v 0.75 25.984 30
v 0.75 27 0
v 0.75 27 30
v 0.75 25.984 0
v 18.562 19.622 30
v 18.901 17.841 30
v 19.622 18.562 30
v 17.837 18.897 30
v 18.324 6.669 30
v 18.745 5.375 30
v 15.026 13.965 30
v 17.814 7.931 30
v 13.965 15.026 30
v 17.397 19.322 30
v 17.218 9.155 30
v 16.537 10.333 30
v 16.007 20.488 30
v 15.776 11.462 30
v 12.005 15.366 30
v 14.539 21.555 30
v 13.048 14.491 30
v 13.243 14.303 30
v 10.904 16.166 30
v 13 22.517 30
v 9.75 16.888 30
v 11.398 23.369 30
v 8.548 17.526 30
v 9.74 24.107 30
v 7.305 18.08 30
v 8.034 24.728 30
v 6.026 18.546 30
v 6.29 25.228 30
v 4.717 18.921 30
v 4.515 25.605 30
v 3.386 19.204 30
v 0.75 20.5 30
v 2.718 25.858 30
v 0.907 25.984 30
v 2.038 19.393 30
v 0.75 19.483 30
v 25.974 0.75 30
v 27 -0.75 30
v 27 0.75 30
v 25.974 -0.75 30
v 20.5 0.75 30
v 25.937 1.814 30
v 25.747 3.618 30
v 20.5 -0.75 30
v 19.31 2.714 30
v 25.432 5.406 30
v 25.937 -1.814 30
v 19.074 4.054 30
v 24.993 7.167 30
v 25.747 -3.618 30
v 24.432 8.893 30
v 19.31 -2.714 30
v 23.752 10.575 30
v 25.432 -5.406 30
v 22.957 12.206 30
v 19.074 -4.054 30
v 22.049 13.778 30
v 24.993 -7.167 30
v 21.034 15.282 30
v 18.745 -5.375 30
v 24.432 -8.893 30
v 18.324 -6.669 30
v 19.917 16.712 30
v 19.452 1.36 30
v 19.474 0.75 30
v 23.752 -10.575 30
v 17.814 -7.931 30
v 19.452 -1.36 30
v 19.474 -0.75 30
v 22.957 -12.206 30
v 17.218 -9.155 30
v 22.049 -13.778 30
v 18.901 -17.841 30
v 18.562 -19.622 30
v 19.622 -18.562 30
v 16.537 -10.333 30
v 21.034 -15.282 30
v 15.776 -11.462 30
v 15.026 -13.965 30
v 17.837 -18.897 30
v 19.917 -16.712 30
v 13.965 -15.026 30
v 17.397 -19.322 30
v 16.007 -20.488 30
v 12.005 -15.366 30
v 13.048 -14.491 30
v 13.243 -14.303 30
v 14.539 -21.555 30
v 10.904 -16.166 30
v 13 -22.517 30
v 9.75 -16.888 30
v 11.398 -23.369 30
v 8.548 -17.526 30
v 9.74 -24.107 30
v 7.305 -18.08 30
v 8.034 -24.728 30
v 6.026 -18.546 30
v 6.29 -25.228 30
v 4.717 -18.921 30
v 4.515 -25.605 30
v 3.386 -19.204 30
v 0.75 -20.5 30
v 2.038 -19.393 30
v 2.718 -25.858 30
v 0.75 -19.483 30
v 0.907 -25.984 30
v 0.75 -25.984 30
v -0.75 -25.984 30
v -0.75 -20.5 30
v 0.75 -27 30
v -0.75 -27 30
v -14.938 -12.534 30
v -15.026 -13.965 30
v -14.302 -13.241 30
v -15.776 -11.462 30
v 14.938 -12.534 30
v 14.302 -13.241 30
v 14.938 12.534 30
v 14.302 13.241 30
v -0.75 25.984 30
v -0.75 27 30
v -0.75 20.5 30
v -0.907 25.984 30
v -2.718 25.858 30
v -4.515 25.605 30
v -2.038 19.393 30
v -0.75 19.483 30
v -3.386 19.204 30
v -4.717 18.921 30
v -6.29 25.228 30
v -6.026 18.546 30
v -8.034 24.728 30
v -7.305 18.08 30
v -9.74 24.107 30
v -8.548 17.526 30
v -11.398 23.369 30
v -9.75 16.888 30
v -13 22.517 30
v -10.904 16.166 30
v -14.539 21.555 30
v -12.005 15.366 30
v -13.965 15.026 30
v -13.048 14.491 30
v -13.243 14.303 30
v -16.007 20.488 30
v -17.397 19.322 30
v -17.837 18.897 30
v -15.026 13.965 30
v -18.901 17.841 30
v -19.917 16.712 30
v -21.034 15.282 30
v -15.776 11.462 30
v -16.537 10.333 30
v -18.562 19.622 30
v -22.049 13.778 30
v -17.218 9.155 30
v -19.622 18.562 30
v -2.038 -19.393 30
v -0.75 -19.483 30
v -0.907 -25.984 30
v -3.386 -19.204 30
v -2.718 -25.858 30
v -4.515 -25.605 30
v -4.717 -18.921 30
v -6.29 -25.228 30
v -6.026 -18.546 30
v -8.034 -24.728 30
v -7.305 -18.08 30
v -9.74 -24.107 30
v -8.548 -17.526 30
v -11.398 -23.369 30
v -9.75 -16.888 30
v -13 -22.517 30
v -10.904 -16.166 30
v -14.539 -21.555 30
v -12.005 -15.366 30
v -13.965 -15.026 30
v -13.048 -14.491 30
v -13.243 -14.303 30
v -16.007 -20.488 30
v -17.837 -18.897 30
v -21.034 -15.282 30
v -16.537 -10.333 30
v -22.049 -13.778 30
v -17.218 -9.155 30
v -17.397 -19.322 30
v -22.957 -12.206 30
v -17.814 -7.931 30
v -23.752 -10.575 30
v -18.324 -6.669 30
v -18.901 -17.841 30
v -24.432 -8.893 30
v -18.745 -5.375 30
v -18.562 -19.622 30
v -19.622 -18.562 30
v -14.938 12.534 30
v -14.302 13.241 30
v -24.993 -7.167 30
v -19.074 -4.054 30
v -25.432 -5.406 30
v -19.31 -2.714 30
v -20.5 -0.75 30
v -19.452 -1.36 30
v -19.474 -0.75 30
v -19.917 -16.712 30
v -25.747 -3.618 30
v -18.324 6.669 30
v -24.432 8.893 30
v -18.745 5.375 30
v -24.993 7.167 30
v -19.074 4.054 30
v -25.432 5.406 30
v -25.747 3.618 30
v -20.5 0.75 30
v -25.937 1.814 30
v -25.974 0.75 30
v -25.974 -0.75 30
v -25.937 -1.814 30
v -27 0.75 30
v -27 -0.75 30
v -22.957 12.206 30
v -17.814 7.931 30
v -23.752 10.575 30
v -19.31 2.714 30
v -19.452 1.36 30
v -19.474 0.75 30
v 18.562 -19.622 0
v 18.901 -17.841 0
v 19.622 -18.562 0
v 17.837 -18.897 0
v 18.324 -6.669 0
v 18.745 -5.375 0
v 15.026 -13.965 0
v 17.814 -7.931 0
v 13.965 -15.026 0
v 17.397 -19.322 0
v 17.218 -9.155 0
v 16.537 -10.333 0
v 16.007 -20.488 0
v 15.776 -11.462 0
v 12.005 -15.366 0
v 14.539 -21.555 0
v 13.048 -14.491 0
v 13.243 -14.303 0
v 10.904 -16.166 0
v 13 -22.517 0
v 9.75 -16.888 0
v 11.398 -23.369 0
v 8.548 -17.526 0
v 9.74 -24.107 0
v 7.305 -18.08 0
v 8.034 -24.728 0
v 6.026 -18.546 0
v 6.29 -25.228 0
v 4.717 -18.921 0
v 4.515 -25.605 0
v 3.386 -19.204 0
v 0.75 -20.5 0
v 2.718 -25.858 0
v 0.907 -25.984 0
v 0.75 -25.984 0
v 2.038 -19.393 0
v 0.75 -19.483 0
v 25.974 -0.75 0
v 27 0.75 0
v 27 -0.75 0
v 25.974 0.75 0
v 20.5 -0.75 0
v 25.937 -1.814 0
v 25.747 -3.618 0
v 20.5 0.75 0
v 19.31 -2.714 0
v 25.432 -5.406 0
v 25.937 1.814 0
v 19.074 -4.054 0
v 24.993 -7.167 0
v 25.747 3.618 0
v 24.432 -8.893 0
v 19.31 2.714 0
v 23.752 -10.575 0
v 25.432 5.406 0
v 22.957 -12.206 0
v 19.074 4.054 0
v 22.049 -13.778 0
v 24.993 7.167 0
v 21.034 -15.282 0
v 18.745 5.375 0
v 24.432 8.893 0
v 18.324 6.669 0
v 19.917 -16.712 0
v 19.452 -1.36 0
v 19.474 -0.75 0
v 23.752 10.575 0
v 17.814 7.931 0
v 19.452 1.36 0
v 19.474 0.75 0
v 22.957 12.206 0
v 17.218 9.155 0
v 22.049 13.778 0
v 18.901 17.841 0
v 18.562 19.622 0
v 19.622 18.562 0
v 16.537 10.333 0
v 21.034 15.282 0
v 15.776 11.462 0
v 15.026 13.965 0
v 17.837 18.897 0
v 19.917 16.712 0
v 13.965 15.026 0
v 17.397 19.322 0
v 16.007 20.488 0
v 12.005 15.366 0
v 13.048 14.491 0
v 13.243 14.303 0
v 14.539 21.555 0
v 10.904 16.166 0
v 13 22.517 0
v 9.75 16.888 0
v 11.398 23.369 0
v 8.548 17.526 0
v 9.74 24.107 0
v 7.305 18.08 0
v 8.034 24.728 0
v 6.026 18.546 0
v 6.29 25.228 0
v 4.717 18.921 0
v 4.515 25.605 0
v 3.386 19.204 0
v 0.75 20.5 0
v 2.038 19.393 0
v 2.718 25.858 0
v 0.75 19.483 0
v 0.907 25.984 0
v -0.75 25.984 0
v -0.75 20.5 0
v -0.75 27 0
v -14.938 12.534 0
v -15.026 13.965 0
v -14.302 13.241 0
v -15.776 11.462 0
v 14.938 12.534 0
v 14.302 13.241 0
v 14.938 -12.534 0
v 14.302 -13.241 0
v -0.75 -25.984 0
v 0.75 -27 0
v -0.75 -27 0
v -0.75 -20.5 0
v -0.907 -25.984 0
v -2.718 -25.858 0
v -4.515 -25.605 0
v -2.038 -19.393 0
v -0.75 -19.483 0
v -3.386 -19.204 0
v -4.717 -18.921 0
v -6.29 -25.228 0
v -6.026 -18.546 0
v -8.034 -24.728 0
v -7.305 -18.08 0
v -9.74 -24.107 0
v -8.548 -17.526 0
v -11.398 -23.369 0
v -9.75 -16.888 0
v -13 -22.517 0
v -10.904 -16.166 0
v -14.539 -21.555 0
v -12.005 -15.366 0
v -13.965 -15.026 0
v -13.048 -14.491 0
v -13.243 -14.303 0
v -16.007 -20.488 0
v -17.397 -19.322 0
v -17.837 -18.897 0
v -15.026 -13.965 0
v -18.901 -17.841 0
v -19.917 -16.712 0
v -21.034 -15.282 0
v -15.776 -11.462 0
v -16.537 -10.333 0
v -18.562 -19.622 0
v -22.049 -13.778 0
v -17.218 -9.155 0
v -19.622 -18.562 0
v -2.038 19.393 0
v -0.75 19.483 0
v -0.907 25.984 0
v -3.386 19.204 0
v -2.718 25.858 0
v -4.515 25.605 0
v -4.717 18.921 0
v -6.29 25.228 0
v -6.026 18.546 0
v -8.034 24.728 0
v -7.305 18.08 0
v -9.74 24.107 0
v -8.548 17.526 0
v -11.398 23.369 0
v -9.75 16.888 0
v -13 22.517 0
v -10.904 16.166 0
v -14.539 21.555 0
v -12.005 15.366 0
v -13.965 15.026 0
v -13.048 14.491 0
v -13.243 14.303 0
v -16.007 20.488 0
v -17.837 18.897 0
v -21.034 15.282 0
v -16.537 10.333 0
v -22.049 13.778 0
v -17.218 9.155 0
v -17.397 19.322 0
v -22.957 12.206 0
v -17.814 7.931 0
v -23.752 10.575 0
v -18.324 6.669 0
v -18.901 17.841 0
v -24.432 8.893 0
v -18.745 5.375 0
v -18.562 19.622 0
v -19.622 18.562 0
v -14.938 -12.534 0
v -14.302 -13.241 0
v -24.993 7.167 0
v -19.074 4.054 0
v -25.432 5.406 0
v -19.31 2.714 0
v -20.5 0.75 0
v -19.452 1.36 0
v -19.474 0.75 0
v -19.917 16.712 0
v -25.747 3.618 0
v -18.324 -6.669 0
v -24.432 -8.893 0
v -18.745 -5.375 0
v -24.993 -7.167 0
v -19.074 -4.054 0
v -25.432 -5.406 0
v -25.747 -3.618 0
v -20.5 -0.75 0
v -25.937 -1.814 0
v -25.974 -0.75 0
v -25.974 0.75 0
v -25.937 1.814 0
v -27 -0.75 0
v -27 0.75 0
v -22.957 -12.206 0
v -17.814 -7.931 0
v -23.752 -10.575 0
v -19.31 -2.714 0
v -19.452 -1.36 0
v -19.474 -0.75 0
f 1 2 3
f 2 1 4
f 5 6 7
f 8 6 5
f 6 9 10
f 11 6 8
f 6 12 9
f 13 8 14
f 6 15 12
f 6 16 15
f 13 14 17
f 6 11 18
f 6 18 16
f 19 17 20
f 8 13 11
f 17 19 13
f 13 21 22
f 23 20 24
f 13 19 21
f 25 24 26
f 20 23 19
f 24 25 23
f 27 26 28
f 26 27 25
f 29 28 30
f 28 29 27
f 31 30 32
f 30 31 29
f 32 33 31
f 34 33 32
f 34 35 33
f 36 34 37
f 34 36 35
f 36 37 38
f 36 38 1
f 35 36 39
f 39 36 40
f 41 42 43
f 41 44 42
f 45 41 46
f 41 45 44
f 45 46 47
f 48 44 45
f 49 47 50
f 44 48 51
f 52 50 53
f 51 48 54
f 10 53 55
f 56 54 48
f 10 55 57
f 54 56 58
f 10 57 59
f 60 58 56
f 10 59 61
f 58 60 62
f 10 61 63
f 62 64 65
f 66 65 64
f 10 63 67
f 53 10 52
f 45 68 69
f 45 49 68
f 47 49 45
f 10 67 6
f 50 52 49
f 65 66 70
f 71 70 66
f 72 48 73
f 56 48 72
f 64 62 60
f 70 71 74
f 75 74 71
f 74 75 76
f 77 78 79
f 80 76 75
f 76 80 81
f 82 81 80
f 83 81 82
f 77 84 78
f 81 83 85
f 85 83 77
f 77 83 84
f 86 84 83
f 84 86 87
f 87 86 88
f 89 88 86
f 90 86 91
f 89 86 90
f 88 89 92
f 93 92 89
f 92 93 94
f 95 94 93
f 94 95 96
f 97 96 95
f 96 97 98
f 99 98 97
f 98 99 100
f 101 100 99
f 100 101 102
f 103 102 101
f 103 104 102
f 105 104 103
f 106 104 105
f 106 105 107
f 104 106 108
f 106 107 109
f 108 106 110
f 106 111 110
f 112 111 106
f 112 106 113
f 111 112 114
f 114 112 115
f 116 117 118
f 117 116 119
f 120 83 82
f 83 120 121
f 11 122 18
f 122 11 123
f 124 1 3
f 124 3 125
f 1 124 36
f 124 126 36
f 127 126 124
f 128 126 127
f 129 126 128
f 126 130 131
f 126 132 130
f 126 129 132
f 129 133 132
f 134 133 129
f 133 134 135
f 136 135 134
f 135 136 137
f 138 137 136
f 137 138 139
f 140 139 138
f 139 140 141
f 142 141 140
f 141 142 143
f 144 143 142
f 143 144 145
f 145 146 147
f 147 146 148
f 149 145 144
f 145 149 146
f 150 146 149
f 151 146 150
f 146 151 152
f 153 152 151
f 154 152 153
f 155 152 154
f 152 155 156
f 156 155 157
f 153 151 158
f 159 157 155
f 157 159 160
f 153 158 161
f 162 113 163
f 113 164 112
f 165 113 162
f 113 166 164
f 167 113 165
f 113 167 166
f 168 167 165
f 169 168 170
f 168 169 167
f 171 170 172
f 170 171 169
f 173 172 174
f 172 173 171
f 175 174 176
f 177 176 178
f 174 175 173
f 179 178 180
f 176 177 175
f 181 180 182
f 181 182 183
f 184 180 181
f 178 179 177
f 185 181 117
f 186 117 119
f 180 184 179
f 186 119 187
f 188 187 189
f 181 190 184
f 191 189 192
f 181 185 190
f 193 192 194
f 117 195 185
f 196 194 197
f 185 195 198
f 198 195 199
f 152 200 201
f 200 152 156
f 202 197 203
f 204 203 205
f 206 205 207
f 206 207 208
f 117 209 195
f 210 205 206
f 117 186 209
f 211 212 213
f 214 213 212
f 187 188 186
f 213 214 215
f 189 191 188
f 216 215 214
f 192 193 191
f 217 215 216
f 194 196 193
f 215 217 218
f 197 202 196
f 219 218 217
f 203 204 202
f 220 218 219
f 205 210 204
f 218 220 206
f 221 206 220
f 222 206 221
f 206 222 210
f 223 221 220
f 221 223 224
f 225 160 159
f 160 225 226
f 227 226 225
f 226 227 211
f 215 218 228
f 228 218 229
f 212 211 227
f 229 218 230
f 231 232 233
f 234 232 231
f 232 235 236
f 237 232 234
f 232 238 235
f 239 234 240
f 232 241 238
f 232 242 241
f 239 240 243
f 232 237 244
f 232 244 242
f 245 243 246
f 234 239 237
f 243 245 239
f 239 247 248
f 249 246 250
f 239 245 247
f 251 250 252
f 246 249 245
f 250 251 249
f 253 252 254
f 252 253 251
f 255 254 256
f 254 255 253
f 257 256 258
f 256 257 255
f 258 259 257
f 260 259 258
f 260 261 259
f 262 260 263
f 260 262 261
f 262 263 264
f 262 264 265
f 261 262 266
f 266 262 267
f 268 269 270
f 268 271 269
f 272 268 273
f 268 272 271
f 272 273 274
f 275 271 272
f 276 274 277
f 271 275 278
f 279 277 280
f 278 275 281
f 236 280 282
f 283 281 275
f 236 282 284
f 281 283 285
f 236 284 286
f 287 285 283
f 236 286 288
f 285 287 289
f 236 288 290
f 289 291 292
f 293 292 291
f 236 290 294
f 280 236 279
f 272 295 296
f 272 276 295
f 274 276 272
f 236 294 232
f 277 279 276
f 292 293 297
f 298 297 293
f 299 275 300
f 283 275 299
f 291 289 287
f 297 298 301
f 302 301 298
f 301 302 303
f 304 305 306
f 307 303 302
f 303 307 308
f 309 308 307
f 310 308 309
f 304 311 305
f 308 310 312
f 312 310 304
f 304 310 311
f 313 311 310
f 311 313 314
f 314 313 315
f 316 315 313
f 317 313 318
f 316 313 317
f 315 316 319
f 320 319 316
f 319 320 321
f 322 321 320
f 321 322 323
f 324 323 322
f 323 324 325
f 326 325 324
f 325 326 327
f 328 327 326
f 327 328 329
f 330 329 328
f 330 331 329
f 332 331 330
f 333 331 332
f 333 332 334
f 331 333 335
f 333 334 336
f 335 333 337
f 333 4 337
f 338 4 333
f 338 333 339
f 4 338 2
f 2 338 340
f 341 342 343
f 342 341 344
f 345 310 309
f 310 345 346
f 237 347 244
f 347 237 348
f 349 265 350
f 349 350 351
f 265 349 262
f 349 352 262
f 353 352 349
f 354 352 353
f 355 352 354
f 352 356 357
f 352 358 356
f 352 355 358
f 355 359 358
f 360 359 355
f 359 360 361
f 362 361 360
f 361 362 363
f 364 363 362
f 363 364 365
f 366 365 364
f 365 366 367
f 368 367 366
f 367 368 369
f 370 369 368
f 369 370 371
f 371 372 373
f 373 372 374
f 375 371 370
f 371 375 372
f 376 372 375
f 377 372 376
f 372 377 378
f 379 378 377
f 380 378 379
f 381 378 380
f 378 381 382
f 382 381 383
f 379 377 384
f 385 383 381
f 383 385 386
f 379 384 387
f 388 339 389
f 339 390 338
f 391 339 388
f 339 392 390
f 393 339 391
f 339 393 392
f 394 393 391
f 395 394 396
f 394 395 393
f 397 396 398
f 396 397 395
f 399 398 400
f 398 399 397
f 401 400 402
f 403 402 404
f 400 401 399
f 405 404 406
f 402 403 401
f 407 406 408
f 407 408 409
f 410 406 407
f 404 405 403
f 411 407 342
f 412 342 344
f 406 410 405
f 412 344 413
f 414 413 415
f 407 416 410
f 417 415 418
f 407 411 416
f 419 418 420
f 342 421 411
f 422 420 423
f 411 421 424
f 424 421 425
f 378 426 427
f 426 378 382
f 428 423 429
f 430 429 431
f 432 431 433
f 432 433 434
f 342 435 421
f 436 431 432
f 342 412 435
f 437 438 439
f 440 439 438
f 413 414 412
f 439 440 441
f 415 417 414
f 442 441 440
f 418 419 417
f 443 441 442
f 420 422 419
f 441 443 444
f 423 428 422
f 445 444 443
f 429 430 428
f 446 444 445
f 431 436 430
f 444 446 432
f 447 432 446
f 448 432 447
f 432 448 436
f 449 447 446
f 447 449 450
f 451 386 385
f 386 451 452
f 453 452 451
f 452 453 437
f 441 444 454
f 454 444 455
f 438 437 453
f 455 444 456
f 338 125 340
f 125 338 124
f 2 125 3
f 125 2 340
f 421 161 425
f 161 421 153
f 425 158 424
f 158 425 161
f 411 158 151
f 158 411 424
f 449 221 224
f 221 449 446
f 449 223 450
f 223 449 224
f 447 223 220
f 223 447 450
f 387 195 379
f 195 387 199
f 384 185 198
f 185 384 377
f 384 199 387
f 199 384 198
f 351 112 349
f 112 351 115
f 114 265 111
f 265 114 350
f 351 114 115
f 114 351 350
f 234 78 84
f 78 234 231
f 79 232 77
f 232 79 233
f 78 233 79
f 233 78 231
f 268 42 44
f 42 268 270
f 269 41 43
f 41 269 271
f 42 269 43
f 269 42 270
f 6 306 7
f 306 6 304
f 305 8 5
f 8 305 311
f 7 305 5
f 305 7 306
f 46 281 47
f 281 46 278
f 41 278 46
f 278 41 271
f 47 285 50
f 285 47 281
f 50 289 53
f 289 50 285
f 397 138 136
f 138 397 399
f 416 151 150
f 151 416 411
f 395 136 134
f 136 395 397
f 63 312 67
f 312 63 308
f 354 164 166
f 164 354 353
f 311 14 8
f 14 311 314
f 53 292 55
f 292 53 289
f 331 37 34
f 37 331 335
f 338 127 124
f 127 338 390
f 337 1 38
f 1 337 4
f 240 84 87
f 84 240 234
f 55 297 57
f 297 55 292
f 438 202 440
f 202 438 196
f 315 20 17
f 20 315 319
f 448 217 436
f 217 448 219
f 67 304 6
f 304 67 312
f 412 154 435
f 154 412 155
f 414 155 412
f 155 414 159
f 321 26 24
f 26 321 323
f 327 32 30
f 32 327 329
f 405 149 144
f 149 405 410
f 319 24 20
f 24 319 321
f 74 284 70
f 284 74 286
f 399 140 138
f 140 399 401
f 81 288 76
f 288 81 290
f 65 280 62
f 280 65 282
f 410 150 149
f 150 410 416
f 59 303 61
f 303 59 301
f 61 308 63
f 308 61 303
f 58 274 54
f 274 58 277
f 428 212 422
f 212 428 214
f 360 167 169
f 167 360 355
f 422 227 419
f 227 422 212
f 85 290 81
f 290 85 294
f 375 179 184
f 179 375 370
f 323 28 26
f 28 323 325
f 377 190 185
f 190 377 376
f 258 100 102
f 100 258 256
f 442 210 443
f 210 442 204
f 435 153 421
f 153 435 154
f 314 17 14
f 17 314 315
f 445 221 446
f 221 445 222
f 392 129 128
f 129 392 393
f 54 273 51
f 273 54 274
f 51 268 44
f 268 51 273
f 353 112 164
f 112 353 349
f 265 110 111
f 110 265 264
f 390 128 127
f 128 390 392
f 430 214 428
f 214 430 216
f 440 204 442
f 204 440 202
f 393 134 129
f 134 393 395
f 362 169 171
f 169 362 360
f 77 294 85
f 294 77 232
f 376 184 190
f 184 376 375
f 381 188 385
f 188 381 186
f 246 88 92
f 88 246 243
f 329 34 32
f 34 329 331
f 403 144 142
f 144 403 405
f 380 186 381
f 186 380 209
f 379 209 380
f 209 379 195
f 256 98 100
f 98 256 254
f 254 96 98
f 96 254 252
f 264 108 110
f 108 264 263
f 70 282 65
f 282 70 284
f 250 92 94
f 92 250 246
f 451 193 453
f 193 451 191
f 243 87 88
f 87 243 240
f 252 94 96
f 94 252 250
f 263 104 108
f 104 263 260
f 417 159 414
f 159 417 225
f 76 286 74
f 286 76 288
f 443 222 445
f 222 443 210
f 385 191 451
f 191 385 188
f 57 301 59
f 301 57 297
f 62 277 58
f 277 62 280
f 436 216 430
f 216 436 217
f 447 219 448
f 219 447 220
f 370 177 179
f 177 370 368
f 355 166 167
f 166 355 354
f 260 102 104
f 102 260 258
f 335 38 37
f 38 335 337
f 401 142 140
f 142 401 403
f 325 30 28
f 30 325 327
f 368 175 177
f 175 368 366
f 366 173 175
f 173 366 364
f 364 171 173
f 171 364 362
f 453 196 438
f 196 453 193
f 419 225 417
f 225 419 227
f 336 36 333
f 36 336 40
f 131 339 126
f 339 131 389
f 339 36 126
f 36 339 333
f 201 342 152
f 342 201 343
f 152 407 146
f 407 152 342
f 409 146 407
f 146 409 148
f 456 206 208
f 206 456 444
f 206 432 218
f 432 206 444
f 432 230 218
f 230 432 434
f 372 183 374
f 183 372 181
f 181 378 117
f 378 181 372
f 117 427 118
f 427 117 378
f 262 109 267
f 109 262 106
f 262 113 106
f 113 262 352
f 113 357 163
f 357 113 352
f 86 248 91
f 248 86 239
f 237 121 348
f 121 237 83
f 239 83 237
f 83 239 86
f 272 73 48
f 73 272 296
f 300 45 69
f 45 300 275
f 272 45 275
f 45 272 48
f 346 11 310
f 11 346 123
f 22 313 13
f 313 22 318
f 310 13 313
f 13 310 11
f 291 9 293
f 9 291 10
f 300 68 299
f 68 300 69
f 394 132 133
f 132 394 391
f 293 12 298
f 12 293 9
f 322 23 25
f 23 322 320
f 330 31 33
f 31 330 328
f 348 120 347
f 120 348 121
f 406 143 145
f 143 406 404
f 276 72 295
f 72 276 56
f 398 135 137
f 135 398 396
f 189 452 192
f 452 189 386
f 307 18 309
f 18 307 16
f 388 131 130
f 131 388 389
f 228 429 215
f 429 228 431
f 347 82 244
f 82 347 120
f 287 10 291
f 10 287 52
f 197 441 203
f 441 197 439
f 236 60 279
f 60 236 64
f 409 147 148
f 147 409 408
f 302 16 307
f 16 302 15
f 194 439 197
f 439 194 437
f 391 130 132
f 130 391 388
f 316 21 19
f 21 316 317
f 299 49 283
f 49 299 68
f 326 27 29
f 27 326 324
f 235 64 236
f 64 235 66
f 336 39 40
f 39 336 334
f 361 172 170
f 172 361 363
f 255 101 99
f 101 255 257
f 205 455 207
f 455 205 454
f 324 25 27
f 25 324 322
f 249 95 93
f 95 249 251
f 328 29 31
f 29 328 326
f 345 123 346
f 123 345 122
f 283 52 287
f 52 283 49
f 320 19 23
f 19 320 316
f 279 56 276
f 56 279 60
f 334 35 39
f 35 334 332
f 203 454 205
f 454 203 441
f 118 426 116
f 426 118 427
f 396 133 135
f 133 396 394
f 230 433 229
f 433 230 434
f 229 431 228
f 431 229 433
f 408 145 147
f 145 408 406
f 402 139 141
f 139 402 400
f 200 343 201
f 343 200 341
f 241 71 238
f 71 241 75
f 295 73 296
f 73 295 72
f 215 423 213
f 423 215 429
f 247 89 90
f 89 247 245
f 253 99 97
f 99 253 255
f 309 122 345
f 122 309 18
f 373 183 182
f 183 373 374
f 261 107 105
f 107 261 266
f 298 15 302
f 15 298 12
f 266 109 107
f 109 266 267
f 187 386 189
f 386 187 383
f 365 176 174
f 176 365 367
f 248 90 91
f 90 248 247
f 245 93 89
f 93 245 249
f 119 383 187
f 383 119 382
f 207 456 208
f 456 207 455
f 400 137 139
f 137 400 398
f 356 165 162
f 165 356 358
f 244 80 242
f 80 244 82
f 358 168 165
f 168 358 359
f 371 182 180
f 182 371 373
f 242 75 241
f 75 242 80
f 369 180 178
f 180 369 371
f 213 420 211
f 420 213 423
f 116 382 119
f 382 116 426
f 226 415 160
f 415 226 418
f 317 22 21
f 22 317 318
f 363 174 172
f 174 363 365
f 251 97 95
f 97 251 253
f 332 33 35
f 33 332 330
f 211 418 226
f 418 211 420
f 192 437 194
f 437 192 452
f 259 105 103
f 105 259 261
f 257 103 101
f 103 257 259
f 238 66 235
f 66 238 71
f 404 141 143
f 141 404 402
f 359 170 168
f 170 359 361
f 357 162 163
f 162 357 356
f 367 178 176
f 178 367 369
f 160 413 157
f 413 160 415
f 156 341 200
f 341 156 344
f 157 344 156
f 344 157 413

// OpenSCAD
/*
    Drill bit storage
*/

$fn=90;  // accuracy
outerR = 52/2;  // 5.2
innerR = 41/2-1;
lenght = 30; //2.5

pegWidth = 1.5;
pegDepth1 = outerR+1;
pegDepth2 = innerR+1;

module peg (pegDepth,l){
    for(i = [0:45:360])
    rotate([0,0,i])
    translate([
    -pegWidth/2,0,0]) 
    cube([pegWidth,
    pegDepth,
    l]);
}


difference () {

union () {
peg (pegDepth1,lenght);
cylinder(
    h = lenght,
    r = outerR
    );
}    

translate([0,0,-1])
union () {
peg (pegDepth2,lenght+2);
cylinder(
    h = lenght+2,
    r = innerR
    );
}

}
